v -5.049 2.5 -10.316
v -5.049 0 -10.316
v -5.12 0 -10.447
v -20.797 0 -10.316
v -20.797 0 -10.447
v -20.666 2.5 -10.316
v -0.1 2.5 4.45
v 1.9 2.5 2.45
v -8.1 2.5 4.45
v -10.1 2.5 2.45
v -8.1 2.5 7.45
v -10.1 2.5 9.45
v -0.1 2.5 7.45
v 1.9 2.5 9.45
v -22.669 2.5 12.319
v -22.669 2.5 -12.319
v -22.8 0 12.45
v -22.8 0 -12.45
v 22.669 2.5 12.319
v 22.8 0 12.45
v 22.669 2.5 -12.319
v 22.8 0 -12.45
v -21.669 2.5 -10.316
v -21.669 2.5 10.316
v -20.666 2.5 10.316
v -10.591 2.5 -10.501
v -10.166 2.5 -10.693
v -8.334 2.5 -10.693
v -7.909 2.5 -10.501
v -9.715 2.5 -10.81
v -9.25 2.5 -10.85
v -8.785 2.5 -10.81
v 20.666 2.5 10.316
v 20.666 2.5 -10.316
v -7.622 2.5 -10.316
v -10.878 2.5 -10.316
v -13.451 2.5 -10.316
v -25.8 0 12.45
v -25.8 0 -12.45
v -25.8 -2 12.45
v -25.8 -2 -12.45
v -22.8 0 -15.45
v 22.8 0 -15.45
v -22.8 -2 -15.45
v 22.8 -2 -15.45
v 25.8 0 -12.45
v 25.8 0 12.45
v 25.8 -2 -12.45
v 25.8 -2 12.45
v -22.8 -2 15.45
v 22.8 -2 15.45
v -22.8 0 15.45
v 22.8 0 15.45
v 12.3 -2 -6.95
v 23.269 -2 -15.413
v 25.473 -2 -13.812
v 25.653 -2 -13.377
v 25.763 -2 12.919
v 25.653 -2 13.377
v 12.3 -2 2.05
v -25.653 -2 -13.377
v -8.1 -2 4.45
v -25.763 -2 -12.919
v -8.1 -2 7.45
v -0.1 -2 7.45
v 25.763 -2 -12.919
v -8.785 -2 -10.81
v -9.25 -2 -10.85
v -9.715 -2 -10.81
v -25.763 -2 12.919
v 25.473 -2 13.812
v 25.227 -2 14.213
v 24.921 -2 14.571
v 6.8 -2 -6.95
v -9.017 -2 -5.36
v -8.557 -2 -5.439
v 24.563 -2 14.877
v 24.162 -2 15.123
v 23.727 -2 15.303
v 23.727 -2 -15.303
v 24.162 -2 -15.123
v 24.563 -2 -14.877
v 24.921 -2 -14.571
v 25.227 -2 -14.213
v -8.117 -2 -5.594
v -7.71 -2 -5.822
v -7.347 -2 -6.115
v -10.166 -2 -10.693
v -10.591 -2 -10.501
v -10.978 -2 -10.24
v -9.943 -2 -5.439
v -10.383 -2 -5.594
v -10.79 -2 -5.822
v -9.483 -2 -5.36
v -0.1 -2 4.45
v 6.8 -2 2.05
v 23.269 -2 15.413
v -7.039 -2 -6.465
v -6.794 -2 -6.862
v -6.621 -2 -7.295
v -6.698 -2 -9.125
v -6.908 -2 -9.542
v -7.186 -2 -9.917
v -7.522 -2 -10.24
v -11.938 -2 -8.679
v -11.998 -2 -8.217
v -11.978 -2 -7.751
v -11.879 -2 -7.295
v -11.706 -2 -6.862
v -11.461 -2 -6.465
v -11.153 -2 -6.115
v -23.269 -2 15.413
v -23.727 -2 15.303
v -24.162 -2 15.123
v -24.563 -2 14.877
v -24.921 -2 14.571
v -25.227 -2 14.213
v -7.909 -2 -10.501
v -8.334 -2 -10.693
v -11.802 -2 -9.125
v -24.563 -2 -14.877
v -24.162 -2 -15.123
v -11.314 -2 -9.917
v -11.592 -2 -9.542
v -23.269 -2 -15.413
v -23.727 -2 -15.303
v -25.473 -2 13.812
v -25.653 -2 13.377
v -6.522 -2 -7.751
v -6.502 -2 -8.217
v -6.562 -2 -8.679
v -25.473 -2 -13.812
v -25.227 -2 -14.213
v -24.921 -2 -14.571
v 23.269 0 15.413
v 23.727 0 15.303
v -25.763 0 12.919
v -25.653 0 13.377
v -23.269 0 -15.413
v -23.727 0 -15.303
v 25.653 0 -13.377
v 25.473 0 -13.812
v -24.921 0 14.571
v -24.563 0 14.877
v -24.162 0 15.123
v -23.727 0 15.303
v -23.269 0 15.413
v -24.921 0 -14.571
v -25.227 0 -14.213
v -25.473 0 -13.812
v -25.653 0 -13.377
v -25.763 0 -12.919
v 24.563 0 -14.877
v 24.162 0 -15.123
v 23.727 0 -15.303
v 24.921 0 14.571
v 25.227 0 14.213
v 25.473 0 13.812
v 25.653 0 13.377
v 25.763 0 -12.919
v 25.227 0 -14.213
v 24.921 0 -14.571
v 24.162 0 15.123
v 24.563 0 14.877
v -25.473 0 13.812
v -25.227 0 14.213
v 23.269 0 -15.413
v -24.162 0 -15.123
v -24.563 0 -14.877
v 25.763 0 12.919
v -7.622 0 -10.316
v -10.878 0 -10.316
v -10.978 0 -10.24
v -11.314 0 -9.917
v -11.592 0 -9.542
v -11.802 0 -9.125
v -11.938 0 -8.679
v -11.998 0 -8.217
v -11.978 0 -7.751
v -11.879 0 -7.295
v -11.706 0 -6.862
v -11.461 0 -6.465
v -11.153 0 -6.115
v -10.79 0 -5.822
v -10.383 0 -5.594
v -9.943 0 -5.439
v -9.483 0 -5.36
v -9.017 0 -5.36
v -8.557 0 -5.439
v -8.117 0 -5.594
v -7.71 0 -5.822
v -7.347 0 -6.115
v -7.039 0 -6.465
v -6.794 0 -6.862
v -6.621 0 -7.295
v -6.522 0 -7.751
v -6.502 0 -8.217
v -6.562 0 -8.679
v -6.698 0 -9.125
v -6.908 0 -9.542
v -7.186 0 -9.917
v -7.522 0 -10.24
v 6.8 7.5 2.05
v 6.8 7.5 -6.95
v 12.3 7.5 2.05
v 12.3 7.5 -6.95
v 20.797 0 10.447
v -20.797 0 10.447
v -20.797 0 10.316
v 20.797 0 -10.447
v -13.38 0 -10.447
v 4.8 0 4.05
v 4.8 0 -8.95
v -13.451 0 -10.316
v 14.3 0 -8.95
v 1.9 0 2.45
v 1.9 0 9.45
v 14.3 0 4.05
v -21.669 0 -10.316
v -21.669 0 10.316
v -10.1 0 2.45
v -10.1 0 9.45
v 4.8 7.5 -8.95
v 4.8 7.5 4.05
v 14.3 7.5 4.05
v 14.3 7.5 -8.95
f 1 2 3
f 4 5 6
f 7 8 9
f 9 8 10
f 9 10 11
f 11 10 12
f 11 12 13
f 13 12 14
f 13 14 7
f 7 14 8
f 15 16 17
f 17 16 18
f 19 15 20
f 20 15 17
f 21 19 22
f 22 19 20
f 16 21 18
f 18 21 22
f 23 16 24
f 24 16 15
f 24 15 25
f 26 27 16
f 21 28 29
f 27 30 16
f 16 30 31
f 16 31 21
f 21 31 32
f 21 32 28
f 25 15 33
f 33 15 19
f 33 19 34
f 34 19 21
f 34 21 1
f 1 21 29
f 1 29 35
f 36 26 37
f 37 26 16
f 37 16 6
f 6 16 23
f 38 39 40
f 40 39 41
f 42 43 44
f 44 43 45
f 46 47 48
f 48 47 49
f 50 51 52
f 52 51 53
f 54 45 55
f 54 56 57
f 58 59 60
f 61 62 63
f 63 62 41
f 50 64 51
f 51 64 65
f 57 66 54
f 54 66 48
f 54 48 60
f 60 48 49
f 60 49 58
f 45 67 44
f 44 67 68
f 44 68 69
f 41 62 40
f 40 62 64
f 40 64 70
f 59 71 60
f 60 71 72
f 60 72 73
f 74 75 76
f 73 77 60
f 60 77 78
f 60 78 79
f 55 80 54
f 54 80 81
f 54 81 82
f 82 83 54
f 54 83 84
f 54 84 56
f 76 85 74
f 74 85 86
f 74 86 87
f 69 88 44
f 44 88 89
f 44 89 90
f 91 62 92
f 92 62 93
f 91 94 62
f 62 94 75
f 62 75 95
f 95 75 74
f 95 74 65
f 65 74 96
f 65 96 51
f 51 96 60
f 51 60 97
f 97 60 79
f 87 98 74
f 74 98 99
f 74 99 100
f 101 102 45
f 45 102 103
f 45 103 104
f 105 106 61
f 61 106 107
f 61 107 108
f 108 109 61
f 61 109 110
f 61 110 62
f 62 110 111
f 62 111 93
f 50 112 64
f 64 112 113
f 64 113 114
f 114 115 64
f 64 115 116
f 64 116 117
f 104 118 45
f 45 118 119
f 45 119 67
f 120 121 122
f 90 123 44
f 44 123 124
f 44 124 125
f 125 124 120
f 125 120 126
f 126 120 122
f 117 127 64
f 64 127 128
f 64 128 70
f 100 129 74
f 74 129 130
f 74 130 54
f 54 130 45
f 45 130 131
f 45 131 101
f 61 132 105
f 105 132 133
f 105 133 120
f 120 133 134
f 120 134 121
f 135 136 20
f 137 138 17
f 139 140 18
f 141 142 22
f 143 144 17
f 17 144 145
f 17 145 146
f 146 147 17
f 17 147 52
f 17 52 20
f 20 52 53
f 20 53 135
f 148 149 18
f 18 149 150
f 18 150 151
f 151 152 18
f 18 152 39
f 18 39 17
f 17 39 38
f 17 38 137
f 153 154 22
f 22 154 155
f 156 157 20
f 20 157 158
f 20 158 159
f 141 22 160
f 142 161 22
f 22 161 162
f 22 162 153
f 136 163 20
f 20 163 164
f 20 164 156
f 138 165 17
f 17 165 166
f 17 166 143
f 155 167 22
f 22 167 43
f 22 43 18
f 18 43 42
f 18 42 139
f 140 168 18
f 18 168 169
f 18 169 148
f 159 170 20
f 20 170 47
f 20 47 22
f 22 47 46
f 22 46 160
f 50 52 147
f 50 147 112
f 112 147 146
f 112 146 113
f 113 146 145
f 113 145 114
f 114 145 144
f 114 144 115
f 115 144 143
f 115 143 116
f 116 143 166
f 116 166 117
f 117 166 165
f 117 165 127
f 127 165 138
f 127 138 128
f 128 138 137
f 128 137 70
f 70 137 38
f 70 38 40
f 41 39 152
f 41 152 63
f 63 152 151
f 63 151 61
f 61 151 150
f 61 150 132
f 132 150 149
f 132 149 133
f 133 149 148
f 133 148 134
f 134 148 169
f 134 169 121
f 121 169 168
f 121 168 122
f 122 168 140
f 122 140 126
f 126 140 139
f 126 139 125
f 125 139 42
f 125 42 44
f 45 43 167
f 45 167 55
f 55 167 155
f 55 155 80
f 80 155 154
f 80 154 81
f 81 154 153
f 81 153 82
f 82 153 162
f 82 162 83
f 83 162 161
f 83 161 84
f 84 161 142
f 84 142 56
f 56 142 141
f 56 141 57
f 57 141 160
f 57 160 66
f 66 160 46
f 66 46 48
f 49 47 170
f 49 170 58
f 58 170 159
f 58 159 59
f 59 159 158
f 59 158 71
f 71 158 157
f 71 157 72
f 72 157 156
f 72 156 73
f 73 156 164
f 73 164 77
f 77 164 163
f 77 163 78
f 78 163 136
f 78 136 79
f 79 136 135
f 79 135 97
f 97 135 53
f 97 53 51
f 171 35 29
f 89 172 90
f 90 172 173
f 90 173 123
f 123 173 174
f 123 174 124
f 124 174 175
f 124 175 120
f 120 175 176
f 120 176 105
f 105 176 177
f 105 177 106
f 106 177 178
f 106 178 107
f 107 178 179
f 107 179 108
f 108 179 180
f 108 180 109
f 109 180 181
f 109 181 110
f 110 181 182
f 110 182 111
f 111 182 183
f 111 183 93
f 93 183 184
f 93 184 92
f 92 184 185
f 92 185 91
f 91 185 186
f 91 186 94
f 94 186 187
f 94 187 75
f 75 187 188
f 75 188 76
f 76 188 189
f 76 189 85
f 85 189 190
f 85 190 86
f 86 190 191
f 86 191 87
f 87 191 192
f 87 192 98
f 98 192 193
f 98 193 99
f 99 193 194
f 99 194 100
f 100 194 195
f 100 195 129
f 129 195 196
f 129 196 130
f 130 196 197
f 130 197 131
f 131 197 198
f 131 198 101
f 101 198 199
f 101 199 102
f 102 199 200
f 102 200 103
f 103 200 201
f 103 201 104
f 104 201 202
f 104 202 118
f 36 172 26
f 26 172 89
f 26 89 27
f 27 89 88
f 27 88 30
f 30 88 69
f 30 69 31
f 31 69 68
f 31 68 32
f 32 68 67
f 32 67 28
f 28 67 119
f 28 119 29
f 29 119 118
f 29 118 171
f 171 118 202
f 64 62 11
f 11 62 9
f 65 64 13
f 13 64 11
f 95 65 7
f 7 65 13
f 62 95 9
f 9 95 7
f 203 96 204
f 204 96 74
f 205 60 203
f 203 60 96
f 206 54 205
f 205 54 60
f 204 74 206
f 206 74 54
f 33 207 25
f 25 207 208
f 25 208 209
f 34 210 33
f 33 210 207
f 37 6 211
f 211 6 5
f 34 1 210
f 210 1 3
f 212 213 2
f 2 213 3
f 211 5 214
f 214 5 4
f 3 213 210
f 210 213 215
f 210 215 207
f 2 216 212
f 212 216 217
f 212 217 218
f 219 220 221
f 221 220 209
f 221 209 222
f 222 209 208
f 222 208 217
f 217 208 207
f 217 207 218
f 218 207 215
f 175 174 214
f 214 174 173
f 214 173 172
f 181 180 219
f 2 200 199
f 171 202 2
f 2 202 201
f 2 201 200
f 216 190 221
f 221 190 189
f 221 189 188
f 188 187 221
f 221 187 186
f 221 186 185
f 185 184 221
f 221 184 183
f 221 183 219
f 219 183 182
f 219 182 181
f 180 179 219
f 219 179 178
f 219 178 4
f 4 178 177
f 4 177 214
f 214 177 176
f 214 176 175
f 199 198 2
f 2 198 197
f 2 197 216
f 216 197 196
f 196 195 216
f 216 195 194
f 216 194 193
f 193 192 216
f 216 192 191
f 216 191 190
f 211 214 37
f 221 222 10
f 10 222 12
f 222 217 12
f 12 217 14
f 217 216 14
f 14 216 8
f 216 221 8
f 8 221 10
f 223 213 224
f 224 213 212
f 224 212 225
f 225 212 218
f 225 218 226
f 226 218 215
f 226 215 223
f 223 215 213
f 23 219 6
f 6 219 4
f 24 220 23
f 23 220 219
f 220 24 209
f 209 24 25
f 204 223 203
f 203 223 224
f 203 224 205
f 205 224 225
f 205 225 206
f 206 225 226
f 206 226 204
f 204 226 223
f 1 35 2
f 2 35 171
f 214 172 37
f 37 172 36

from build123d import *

# Parameters (mm, degrees)
CROQUIS1_W              = 45.6
CROQUIS1_H              = 24.9
SALIENTE_EXTRUIR1_DEPTH = 2.5
SALIENTE_EXTRUIR1_TAPER = 3
CROQUIS2_W              = 51.6
CROQUIS2_H              = 30.9
SALIENTE_EXTRUIR2_DEPTH = 2
REDONDEO1_R             = 3
CROQUIS3_R              = 2.75
CROQUIS3_W              = 8
CROQUIS3_H              = 3
CROQUIS3_W_2            = 5.5
CROQUIS3_H_2            = 9
CORTAR_EXTRUIR1_DEPTH   = 5
VACIADO1_START          = -10.447255308
VACIADO1_OUTLINE_W      = 2.9
VACIADO1_OUTLINE_H      = 2.5
VACIADO1_DEPTH          = 20.894510616
VACIADO1_2_OUTLINE_W    = 12
VACIADO1_2_OUTLINE_H    = 2.5
VACIADO1_2_DEPTH        = 12.897255308
VACIADO1_START_2        = 4.05
VACIADO1_3_OUTLINE_W    = 9.5
VACIADO1_3_OUTLINE_H    = 2.5
VACIADO1_3_DEPTH        = 6.397255308
VACIADO1_4_OUTLINE_W    = 9.5
VACIADO1_4_OUTLINE_H    = 2.5
VACIADO1_4_DEPTH        = 1.497255308
VACIADO1_START_3        = 9.45
VACIADO1_5_OUTLINE_W    = 12
VACIADO1_5_OUTLINE_H    = 2.5
VACIADO1_5_DEPTH        = 0.997255308
VACIADO1_START_4        = -7.073070686
VACIADO1_6_DEPTH        = 29.742051238
VACIADO1_START_5        = -22.668980552
VACIADO1_7_DEPTH        = 10.789333394
VACIADO1_START_6        = -12.0000001
VACIADO1_8_DEPTH        = 5.350388625
VACIADO1_9_DEPTH        = 2.5
CROQUIS4_W              = 1.002744692
CROQUIS4_H              = 20.63247172
CORTAR_EXTRUIR2_DEPTH   = 2.5
CROQUIS6_W              = 9.5
CROQUIS6_H              = 13
CROQUIS6_W_2            = 5.5
CROQUIS6_H_2            = 9
SALIENTE_EXTRUIR3_DEPTH = 5
CROQUIS7_W              = 15.957634565
CROQUIS7_H              = 9.76050456
CORTAR_EXTRUIR3_DEPTH   = 2.5


with BuildPart() as part:
    # Croquis1 → Saliente-Extruir1 (new body)
    with BuildSketch(Plane(origin=(0, 0, 0), x_dir=(1, 0, 0), z_dir=(0, 1, 0))):
        Rectangle(CROQUIS1_W, CROQUIS1_H)
    extrude(amount=SALIENTE_EXTRUIR1_DEPTH, taper=SALIENTE_EXTRUIR1_TAPER)

    # Croquis2 → Saliente-Extruir2 (add)
    with BuildSketch(Plane.XZ):
        Rectangle(CROQUIS2_W, CROQUIS2_H)
    extrude(amount=SALIENTE_EXTRUIR2_DEPTH)

    # Redondeo1
    redondeo1_edges = [part.edges().sort_by_distance(p)[0] for p in [
        (-25.8, -1, 15.45),
        (-25.8, -1, -15.45),
        (25.8, -1, -15.45),
        (25.8, -1, 15.45),
    ]]
    fillet(redondeo1_edges, radius=REDONDEO1_R)

    # Croquis3 → Cortar-Extruir1 (cut)
    with BuildSketch(Plane.XZ.offset(2)):
        with Locations(Location((-9.25, -8.1, 0), (0, 0, 270))):
            Circle(CROQUIS3_R)
        with Locations((-4.1, 5.95)):
            Rectangle(CROQUIS3_W, CROQUIS3_H)
        with Locations((9.55, -2.45)):
            Rectangle(CROQUIS3_W_2, CROQUIS3_H_2)
    extrude(amount=-CORTAR_EXTRUIR1_DEPTH, mode=Mode.SUBTRACT)

    # Vaciado1: read off the stored shape, not the designer's step
    # Vaciado1 outline → Vaciado1 (cut)
    with BuildSketch(Plane.XY.offset(VACIADO1_START)):
        Polygon((-20.66623586, 2.5), (-20.797255308, 0), (-10.1, 0), (-10.1, 2.5), align=None)
        with Locations((3.35, 1.25)):
            Rectangle(VACIADO1_OUTLINE_W, VACIADO1_OUTLINE_H)
        Polygon((14.3, 2.5), (14.3, 0), (20.797255308, 0), (20.66623586, 2.5), align=None)
    extrude(amount=VACIADO1_DEPTH, mode=Mode.SUBTRACT)

    # Vaciado1 2 outline → Vaciado1 2 (cut)
    with BuildSketch(Plane.XY.offset(VACIADO1_START)):
        with Locations((-4.1, 1.25)):
            Rectangle(VACIADO1_2_OUTLINE_W, VACIADO1_2_OUTLINE_H)
    extrude(amount=VACIADO1_2_DEPTH, mode=Mode.SUBTRACT)

    # Vaciado1 3 outline → Vaciado1 3 (cut)
    with BuildSketch(Plane.XY.offset(VACIADO1_START_2)):
        with Locations((9.55, 1.25)):
            Rectangle(VACIADO1_3_OUTLINE_W, VACIADO1_3_OUTLINE_H)
    extrude(amount=VACIADO1_3_DEPTH, mode=Mode.SUBTRACT)

    # Vaciado1 4 outline → Vaciado1 4 (cut)
    with BuildSketch(Plane.XY.offset(VACIADO1_START)):
        with Locations((9.55, 1.25)):
            Rectangle(VACIADO1_4_OUTLINE_W, VACIADO1_4_OUTLINE_H)
    extrude(amount=VACIADO1_4_DEPTH, mode=Mode.SUBTRACT)

    # Vaciado1 5 outline → Vaciado1 5 (cut)
    with BuildSketch(Plane.XY.offset(VACIADO1_START_3)):
        with Locations((-4.1, 1.25)):
            Rectangle(VACIADO1_5_OUTLINE_W, VACIADO1_5_OUTLINE_H)
    extrude(amount=VACIADO1_5_DEPTH, mode=Mode.SUBTRACT)

    # Vaciado1 6 outline → Vaciado1 6 (add)
    with BuildSketch(Plane.YZ.offset(VACIADO1_START_4)):
        Polygon((0, -10.447255308), (2.5, -10.447255308), (2.5, -10.31623586), align=None)
        Polygon((0, 10.447255308), (2.5, 10.31623586), (2.5, 10.447255308), align=None)
    extrude(amount=VACIADO1_6_DEPTH)

    # Vaciado1 7 outline → Vaciado1 7 (add)
    with BuildSketch(Plane.YZ.offset(VACIADO1_START_5)):
        Polygon((0, -10.447255308), (2.5, -10.447255308), (2.5, -10.31623586), align=None)
        Polygon((0, 10.447255308), (2.5, 10.31623586), (2.5, 10.447255308), align=None)
    extrude(amount=VACIADO1_7_DEPTH)

    # Vaciado1 8 outline → Vaciado1 8 (add)
    with BuildSketch(Plane.YZ.offset(VACIADO1_START_6)):
        Polygon((0, 10.447255308), (2.5, 10.31623586), (2.5, 10.447255308), align=None)
    extrude(amount=VACIADO1_8_DEPTH)

    # Vaciado1 9 outline → Vaciado1 9 (add)
    with BuildSketch(Plane(origin=(0, 0, 0), x_dir=(1, 0, 0), z_dir=(0, 1, 0))):
        with BuildLine():
            ThreePointArc((-7.817208138, 10.447255308), (-9.25, 5.35), (-10.682791862, 10.447255308))
            Line((-10.682791862, 10.447255308), (-13.379514804, 10.447255308))
            ThreePointArc((-13.379514804, 10.447255308), (-9.25, 3.35), (-5.120485196, 10.447255308))
            Line((-5.120485196, 10.447255308), (-7.817208138, 10.447255308))
        make_face()
    extrude(amount=VACIADO1_9_DEPTH)

    # Croquis4 → Cortar-Extruir2 (cut)
    with BuildSketch(Plane(origin=(0, 2.5, 0), x_dir=(1, 0, 0), z_dir=(0, 1, 0))):
        with Locations((-21.167608206, 0)):
            Rectangle(CROQUIS4_W, CROQUIS4_H)
    extrude(amount=-CORTAR_EXTRUIR2_DEPTH, mode=Mode.SUBTRACT)

    # Croquis6 → Saliente-Extruir3 (add)
    with BuildSketch(Plane(origin=(0, 2.5, 0), x_dir=(1, 0, 0), z_dir=(0, 1, 0))):
        with Locations((9.55, 2.45)):
            Rectangle(CROQUIS6_W, CROQUIS6_H)
        with Locations((9.55, 2.45)):
            Rectangle(CROQUIS6_W_2, CROQUIS6_H_2, mode=Mode.SUBTRACT)
    extrude(amount=SALIENTE_EXTRUIR3_DEPTH)

    # Croquis7 → Cortar-Extruir3 (cut)
    with BuildSketch(Plane(origin=(0, 2.5, 0), x_dir=(1, 0, 0), z_dir=(0, 1, 0))):
        with Locations((-9.332505864, 5.43598358)):
            Rectangle(CROQUIS7_W, CROQUIS7_H)
    extrude(amount=-CORTAR_EXTRUIR3_DEPTH, mode=Mode.SUBTRACT)


solid = part.part
